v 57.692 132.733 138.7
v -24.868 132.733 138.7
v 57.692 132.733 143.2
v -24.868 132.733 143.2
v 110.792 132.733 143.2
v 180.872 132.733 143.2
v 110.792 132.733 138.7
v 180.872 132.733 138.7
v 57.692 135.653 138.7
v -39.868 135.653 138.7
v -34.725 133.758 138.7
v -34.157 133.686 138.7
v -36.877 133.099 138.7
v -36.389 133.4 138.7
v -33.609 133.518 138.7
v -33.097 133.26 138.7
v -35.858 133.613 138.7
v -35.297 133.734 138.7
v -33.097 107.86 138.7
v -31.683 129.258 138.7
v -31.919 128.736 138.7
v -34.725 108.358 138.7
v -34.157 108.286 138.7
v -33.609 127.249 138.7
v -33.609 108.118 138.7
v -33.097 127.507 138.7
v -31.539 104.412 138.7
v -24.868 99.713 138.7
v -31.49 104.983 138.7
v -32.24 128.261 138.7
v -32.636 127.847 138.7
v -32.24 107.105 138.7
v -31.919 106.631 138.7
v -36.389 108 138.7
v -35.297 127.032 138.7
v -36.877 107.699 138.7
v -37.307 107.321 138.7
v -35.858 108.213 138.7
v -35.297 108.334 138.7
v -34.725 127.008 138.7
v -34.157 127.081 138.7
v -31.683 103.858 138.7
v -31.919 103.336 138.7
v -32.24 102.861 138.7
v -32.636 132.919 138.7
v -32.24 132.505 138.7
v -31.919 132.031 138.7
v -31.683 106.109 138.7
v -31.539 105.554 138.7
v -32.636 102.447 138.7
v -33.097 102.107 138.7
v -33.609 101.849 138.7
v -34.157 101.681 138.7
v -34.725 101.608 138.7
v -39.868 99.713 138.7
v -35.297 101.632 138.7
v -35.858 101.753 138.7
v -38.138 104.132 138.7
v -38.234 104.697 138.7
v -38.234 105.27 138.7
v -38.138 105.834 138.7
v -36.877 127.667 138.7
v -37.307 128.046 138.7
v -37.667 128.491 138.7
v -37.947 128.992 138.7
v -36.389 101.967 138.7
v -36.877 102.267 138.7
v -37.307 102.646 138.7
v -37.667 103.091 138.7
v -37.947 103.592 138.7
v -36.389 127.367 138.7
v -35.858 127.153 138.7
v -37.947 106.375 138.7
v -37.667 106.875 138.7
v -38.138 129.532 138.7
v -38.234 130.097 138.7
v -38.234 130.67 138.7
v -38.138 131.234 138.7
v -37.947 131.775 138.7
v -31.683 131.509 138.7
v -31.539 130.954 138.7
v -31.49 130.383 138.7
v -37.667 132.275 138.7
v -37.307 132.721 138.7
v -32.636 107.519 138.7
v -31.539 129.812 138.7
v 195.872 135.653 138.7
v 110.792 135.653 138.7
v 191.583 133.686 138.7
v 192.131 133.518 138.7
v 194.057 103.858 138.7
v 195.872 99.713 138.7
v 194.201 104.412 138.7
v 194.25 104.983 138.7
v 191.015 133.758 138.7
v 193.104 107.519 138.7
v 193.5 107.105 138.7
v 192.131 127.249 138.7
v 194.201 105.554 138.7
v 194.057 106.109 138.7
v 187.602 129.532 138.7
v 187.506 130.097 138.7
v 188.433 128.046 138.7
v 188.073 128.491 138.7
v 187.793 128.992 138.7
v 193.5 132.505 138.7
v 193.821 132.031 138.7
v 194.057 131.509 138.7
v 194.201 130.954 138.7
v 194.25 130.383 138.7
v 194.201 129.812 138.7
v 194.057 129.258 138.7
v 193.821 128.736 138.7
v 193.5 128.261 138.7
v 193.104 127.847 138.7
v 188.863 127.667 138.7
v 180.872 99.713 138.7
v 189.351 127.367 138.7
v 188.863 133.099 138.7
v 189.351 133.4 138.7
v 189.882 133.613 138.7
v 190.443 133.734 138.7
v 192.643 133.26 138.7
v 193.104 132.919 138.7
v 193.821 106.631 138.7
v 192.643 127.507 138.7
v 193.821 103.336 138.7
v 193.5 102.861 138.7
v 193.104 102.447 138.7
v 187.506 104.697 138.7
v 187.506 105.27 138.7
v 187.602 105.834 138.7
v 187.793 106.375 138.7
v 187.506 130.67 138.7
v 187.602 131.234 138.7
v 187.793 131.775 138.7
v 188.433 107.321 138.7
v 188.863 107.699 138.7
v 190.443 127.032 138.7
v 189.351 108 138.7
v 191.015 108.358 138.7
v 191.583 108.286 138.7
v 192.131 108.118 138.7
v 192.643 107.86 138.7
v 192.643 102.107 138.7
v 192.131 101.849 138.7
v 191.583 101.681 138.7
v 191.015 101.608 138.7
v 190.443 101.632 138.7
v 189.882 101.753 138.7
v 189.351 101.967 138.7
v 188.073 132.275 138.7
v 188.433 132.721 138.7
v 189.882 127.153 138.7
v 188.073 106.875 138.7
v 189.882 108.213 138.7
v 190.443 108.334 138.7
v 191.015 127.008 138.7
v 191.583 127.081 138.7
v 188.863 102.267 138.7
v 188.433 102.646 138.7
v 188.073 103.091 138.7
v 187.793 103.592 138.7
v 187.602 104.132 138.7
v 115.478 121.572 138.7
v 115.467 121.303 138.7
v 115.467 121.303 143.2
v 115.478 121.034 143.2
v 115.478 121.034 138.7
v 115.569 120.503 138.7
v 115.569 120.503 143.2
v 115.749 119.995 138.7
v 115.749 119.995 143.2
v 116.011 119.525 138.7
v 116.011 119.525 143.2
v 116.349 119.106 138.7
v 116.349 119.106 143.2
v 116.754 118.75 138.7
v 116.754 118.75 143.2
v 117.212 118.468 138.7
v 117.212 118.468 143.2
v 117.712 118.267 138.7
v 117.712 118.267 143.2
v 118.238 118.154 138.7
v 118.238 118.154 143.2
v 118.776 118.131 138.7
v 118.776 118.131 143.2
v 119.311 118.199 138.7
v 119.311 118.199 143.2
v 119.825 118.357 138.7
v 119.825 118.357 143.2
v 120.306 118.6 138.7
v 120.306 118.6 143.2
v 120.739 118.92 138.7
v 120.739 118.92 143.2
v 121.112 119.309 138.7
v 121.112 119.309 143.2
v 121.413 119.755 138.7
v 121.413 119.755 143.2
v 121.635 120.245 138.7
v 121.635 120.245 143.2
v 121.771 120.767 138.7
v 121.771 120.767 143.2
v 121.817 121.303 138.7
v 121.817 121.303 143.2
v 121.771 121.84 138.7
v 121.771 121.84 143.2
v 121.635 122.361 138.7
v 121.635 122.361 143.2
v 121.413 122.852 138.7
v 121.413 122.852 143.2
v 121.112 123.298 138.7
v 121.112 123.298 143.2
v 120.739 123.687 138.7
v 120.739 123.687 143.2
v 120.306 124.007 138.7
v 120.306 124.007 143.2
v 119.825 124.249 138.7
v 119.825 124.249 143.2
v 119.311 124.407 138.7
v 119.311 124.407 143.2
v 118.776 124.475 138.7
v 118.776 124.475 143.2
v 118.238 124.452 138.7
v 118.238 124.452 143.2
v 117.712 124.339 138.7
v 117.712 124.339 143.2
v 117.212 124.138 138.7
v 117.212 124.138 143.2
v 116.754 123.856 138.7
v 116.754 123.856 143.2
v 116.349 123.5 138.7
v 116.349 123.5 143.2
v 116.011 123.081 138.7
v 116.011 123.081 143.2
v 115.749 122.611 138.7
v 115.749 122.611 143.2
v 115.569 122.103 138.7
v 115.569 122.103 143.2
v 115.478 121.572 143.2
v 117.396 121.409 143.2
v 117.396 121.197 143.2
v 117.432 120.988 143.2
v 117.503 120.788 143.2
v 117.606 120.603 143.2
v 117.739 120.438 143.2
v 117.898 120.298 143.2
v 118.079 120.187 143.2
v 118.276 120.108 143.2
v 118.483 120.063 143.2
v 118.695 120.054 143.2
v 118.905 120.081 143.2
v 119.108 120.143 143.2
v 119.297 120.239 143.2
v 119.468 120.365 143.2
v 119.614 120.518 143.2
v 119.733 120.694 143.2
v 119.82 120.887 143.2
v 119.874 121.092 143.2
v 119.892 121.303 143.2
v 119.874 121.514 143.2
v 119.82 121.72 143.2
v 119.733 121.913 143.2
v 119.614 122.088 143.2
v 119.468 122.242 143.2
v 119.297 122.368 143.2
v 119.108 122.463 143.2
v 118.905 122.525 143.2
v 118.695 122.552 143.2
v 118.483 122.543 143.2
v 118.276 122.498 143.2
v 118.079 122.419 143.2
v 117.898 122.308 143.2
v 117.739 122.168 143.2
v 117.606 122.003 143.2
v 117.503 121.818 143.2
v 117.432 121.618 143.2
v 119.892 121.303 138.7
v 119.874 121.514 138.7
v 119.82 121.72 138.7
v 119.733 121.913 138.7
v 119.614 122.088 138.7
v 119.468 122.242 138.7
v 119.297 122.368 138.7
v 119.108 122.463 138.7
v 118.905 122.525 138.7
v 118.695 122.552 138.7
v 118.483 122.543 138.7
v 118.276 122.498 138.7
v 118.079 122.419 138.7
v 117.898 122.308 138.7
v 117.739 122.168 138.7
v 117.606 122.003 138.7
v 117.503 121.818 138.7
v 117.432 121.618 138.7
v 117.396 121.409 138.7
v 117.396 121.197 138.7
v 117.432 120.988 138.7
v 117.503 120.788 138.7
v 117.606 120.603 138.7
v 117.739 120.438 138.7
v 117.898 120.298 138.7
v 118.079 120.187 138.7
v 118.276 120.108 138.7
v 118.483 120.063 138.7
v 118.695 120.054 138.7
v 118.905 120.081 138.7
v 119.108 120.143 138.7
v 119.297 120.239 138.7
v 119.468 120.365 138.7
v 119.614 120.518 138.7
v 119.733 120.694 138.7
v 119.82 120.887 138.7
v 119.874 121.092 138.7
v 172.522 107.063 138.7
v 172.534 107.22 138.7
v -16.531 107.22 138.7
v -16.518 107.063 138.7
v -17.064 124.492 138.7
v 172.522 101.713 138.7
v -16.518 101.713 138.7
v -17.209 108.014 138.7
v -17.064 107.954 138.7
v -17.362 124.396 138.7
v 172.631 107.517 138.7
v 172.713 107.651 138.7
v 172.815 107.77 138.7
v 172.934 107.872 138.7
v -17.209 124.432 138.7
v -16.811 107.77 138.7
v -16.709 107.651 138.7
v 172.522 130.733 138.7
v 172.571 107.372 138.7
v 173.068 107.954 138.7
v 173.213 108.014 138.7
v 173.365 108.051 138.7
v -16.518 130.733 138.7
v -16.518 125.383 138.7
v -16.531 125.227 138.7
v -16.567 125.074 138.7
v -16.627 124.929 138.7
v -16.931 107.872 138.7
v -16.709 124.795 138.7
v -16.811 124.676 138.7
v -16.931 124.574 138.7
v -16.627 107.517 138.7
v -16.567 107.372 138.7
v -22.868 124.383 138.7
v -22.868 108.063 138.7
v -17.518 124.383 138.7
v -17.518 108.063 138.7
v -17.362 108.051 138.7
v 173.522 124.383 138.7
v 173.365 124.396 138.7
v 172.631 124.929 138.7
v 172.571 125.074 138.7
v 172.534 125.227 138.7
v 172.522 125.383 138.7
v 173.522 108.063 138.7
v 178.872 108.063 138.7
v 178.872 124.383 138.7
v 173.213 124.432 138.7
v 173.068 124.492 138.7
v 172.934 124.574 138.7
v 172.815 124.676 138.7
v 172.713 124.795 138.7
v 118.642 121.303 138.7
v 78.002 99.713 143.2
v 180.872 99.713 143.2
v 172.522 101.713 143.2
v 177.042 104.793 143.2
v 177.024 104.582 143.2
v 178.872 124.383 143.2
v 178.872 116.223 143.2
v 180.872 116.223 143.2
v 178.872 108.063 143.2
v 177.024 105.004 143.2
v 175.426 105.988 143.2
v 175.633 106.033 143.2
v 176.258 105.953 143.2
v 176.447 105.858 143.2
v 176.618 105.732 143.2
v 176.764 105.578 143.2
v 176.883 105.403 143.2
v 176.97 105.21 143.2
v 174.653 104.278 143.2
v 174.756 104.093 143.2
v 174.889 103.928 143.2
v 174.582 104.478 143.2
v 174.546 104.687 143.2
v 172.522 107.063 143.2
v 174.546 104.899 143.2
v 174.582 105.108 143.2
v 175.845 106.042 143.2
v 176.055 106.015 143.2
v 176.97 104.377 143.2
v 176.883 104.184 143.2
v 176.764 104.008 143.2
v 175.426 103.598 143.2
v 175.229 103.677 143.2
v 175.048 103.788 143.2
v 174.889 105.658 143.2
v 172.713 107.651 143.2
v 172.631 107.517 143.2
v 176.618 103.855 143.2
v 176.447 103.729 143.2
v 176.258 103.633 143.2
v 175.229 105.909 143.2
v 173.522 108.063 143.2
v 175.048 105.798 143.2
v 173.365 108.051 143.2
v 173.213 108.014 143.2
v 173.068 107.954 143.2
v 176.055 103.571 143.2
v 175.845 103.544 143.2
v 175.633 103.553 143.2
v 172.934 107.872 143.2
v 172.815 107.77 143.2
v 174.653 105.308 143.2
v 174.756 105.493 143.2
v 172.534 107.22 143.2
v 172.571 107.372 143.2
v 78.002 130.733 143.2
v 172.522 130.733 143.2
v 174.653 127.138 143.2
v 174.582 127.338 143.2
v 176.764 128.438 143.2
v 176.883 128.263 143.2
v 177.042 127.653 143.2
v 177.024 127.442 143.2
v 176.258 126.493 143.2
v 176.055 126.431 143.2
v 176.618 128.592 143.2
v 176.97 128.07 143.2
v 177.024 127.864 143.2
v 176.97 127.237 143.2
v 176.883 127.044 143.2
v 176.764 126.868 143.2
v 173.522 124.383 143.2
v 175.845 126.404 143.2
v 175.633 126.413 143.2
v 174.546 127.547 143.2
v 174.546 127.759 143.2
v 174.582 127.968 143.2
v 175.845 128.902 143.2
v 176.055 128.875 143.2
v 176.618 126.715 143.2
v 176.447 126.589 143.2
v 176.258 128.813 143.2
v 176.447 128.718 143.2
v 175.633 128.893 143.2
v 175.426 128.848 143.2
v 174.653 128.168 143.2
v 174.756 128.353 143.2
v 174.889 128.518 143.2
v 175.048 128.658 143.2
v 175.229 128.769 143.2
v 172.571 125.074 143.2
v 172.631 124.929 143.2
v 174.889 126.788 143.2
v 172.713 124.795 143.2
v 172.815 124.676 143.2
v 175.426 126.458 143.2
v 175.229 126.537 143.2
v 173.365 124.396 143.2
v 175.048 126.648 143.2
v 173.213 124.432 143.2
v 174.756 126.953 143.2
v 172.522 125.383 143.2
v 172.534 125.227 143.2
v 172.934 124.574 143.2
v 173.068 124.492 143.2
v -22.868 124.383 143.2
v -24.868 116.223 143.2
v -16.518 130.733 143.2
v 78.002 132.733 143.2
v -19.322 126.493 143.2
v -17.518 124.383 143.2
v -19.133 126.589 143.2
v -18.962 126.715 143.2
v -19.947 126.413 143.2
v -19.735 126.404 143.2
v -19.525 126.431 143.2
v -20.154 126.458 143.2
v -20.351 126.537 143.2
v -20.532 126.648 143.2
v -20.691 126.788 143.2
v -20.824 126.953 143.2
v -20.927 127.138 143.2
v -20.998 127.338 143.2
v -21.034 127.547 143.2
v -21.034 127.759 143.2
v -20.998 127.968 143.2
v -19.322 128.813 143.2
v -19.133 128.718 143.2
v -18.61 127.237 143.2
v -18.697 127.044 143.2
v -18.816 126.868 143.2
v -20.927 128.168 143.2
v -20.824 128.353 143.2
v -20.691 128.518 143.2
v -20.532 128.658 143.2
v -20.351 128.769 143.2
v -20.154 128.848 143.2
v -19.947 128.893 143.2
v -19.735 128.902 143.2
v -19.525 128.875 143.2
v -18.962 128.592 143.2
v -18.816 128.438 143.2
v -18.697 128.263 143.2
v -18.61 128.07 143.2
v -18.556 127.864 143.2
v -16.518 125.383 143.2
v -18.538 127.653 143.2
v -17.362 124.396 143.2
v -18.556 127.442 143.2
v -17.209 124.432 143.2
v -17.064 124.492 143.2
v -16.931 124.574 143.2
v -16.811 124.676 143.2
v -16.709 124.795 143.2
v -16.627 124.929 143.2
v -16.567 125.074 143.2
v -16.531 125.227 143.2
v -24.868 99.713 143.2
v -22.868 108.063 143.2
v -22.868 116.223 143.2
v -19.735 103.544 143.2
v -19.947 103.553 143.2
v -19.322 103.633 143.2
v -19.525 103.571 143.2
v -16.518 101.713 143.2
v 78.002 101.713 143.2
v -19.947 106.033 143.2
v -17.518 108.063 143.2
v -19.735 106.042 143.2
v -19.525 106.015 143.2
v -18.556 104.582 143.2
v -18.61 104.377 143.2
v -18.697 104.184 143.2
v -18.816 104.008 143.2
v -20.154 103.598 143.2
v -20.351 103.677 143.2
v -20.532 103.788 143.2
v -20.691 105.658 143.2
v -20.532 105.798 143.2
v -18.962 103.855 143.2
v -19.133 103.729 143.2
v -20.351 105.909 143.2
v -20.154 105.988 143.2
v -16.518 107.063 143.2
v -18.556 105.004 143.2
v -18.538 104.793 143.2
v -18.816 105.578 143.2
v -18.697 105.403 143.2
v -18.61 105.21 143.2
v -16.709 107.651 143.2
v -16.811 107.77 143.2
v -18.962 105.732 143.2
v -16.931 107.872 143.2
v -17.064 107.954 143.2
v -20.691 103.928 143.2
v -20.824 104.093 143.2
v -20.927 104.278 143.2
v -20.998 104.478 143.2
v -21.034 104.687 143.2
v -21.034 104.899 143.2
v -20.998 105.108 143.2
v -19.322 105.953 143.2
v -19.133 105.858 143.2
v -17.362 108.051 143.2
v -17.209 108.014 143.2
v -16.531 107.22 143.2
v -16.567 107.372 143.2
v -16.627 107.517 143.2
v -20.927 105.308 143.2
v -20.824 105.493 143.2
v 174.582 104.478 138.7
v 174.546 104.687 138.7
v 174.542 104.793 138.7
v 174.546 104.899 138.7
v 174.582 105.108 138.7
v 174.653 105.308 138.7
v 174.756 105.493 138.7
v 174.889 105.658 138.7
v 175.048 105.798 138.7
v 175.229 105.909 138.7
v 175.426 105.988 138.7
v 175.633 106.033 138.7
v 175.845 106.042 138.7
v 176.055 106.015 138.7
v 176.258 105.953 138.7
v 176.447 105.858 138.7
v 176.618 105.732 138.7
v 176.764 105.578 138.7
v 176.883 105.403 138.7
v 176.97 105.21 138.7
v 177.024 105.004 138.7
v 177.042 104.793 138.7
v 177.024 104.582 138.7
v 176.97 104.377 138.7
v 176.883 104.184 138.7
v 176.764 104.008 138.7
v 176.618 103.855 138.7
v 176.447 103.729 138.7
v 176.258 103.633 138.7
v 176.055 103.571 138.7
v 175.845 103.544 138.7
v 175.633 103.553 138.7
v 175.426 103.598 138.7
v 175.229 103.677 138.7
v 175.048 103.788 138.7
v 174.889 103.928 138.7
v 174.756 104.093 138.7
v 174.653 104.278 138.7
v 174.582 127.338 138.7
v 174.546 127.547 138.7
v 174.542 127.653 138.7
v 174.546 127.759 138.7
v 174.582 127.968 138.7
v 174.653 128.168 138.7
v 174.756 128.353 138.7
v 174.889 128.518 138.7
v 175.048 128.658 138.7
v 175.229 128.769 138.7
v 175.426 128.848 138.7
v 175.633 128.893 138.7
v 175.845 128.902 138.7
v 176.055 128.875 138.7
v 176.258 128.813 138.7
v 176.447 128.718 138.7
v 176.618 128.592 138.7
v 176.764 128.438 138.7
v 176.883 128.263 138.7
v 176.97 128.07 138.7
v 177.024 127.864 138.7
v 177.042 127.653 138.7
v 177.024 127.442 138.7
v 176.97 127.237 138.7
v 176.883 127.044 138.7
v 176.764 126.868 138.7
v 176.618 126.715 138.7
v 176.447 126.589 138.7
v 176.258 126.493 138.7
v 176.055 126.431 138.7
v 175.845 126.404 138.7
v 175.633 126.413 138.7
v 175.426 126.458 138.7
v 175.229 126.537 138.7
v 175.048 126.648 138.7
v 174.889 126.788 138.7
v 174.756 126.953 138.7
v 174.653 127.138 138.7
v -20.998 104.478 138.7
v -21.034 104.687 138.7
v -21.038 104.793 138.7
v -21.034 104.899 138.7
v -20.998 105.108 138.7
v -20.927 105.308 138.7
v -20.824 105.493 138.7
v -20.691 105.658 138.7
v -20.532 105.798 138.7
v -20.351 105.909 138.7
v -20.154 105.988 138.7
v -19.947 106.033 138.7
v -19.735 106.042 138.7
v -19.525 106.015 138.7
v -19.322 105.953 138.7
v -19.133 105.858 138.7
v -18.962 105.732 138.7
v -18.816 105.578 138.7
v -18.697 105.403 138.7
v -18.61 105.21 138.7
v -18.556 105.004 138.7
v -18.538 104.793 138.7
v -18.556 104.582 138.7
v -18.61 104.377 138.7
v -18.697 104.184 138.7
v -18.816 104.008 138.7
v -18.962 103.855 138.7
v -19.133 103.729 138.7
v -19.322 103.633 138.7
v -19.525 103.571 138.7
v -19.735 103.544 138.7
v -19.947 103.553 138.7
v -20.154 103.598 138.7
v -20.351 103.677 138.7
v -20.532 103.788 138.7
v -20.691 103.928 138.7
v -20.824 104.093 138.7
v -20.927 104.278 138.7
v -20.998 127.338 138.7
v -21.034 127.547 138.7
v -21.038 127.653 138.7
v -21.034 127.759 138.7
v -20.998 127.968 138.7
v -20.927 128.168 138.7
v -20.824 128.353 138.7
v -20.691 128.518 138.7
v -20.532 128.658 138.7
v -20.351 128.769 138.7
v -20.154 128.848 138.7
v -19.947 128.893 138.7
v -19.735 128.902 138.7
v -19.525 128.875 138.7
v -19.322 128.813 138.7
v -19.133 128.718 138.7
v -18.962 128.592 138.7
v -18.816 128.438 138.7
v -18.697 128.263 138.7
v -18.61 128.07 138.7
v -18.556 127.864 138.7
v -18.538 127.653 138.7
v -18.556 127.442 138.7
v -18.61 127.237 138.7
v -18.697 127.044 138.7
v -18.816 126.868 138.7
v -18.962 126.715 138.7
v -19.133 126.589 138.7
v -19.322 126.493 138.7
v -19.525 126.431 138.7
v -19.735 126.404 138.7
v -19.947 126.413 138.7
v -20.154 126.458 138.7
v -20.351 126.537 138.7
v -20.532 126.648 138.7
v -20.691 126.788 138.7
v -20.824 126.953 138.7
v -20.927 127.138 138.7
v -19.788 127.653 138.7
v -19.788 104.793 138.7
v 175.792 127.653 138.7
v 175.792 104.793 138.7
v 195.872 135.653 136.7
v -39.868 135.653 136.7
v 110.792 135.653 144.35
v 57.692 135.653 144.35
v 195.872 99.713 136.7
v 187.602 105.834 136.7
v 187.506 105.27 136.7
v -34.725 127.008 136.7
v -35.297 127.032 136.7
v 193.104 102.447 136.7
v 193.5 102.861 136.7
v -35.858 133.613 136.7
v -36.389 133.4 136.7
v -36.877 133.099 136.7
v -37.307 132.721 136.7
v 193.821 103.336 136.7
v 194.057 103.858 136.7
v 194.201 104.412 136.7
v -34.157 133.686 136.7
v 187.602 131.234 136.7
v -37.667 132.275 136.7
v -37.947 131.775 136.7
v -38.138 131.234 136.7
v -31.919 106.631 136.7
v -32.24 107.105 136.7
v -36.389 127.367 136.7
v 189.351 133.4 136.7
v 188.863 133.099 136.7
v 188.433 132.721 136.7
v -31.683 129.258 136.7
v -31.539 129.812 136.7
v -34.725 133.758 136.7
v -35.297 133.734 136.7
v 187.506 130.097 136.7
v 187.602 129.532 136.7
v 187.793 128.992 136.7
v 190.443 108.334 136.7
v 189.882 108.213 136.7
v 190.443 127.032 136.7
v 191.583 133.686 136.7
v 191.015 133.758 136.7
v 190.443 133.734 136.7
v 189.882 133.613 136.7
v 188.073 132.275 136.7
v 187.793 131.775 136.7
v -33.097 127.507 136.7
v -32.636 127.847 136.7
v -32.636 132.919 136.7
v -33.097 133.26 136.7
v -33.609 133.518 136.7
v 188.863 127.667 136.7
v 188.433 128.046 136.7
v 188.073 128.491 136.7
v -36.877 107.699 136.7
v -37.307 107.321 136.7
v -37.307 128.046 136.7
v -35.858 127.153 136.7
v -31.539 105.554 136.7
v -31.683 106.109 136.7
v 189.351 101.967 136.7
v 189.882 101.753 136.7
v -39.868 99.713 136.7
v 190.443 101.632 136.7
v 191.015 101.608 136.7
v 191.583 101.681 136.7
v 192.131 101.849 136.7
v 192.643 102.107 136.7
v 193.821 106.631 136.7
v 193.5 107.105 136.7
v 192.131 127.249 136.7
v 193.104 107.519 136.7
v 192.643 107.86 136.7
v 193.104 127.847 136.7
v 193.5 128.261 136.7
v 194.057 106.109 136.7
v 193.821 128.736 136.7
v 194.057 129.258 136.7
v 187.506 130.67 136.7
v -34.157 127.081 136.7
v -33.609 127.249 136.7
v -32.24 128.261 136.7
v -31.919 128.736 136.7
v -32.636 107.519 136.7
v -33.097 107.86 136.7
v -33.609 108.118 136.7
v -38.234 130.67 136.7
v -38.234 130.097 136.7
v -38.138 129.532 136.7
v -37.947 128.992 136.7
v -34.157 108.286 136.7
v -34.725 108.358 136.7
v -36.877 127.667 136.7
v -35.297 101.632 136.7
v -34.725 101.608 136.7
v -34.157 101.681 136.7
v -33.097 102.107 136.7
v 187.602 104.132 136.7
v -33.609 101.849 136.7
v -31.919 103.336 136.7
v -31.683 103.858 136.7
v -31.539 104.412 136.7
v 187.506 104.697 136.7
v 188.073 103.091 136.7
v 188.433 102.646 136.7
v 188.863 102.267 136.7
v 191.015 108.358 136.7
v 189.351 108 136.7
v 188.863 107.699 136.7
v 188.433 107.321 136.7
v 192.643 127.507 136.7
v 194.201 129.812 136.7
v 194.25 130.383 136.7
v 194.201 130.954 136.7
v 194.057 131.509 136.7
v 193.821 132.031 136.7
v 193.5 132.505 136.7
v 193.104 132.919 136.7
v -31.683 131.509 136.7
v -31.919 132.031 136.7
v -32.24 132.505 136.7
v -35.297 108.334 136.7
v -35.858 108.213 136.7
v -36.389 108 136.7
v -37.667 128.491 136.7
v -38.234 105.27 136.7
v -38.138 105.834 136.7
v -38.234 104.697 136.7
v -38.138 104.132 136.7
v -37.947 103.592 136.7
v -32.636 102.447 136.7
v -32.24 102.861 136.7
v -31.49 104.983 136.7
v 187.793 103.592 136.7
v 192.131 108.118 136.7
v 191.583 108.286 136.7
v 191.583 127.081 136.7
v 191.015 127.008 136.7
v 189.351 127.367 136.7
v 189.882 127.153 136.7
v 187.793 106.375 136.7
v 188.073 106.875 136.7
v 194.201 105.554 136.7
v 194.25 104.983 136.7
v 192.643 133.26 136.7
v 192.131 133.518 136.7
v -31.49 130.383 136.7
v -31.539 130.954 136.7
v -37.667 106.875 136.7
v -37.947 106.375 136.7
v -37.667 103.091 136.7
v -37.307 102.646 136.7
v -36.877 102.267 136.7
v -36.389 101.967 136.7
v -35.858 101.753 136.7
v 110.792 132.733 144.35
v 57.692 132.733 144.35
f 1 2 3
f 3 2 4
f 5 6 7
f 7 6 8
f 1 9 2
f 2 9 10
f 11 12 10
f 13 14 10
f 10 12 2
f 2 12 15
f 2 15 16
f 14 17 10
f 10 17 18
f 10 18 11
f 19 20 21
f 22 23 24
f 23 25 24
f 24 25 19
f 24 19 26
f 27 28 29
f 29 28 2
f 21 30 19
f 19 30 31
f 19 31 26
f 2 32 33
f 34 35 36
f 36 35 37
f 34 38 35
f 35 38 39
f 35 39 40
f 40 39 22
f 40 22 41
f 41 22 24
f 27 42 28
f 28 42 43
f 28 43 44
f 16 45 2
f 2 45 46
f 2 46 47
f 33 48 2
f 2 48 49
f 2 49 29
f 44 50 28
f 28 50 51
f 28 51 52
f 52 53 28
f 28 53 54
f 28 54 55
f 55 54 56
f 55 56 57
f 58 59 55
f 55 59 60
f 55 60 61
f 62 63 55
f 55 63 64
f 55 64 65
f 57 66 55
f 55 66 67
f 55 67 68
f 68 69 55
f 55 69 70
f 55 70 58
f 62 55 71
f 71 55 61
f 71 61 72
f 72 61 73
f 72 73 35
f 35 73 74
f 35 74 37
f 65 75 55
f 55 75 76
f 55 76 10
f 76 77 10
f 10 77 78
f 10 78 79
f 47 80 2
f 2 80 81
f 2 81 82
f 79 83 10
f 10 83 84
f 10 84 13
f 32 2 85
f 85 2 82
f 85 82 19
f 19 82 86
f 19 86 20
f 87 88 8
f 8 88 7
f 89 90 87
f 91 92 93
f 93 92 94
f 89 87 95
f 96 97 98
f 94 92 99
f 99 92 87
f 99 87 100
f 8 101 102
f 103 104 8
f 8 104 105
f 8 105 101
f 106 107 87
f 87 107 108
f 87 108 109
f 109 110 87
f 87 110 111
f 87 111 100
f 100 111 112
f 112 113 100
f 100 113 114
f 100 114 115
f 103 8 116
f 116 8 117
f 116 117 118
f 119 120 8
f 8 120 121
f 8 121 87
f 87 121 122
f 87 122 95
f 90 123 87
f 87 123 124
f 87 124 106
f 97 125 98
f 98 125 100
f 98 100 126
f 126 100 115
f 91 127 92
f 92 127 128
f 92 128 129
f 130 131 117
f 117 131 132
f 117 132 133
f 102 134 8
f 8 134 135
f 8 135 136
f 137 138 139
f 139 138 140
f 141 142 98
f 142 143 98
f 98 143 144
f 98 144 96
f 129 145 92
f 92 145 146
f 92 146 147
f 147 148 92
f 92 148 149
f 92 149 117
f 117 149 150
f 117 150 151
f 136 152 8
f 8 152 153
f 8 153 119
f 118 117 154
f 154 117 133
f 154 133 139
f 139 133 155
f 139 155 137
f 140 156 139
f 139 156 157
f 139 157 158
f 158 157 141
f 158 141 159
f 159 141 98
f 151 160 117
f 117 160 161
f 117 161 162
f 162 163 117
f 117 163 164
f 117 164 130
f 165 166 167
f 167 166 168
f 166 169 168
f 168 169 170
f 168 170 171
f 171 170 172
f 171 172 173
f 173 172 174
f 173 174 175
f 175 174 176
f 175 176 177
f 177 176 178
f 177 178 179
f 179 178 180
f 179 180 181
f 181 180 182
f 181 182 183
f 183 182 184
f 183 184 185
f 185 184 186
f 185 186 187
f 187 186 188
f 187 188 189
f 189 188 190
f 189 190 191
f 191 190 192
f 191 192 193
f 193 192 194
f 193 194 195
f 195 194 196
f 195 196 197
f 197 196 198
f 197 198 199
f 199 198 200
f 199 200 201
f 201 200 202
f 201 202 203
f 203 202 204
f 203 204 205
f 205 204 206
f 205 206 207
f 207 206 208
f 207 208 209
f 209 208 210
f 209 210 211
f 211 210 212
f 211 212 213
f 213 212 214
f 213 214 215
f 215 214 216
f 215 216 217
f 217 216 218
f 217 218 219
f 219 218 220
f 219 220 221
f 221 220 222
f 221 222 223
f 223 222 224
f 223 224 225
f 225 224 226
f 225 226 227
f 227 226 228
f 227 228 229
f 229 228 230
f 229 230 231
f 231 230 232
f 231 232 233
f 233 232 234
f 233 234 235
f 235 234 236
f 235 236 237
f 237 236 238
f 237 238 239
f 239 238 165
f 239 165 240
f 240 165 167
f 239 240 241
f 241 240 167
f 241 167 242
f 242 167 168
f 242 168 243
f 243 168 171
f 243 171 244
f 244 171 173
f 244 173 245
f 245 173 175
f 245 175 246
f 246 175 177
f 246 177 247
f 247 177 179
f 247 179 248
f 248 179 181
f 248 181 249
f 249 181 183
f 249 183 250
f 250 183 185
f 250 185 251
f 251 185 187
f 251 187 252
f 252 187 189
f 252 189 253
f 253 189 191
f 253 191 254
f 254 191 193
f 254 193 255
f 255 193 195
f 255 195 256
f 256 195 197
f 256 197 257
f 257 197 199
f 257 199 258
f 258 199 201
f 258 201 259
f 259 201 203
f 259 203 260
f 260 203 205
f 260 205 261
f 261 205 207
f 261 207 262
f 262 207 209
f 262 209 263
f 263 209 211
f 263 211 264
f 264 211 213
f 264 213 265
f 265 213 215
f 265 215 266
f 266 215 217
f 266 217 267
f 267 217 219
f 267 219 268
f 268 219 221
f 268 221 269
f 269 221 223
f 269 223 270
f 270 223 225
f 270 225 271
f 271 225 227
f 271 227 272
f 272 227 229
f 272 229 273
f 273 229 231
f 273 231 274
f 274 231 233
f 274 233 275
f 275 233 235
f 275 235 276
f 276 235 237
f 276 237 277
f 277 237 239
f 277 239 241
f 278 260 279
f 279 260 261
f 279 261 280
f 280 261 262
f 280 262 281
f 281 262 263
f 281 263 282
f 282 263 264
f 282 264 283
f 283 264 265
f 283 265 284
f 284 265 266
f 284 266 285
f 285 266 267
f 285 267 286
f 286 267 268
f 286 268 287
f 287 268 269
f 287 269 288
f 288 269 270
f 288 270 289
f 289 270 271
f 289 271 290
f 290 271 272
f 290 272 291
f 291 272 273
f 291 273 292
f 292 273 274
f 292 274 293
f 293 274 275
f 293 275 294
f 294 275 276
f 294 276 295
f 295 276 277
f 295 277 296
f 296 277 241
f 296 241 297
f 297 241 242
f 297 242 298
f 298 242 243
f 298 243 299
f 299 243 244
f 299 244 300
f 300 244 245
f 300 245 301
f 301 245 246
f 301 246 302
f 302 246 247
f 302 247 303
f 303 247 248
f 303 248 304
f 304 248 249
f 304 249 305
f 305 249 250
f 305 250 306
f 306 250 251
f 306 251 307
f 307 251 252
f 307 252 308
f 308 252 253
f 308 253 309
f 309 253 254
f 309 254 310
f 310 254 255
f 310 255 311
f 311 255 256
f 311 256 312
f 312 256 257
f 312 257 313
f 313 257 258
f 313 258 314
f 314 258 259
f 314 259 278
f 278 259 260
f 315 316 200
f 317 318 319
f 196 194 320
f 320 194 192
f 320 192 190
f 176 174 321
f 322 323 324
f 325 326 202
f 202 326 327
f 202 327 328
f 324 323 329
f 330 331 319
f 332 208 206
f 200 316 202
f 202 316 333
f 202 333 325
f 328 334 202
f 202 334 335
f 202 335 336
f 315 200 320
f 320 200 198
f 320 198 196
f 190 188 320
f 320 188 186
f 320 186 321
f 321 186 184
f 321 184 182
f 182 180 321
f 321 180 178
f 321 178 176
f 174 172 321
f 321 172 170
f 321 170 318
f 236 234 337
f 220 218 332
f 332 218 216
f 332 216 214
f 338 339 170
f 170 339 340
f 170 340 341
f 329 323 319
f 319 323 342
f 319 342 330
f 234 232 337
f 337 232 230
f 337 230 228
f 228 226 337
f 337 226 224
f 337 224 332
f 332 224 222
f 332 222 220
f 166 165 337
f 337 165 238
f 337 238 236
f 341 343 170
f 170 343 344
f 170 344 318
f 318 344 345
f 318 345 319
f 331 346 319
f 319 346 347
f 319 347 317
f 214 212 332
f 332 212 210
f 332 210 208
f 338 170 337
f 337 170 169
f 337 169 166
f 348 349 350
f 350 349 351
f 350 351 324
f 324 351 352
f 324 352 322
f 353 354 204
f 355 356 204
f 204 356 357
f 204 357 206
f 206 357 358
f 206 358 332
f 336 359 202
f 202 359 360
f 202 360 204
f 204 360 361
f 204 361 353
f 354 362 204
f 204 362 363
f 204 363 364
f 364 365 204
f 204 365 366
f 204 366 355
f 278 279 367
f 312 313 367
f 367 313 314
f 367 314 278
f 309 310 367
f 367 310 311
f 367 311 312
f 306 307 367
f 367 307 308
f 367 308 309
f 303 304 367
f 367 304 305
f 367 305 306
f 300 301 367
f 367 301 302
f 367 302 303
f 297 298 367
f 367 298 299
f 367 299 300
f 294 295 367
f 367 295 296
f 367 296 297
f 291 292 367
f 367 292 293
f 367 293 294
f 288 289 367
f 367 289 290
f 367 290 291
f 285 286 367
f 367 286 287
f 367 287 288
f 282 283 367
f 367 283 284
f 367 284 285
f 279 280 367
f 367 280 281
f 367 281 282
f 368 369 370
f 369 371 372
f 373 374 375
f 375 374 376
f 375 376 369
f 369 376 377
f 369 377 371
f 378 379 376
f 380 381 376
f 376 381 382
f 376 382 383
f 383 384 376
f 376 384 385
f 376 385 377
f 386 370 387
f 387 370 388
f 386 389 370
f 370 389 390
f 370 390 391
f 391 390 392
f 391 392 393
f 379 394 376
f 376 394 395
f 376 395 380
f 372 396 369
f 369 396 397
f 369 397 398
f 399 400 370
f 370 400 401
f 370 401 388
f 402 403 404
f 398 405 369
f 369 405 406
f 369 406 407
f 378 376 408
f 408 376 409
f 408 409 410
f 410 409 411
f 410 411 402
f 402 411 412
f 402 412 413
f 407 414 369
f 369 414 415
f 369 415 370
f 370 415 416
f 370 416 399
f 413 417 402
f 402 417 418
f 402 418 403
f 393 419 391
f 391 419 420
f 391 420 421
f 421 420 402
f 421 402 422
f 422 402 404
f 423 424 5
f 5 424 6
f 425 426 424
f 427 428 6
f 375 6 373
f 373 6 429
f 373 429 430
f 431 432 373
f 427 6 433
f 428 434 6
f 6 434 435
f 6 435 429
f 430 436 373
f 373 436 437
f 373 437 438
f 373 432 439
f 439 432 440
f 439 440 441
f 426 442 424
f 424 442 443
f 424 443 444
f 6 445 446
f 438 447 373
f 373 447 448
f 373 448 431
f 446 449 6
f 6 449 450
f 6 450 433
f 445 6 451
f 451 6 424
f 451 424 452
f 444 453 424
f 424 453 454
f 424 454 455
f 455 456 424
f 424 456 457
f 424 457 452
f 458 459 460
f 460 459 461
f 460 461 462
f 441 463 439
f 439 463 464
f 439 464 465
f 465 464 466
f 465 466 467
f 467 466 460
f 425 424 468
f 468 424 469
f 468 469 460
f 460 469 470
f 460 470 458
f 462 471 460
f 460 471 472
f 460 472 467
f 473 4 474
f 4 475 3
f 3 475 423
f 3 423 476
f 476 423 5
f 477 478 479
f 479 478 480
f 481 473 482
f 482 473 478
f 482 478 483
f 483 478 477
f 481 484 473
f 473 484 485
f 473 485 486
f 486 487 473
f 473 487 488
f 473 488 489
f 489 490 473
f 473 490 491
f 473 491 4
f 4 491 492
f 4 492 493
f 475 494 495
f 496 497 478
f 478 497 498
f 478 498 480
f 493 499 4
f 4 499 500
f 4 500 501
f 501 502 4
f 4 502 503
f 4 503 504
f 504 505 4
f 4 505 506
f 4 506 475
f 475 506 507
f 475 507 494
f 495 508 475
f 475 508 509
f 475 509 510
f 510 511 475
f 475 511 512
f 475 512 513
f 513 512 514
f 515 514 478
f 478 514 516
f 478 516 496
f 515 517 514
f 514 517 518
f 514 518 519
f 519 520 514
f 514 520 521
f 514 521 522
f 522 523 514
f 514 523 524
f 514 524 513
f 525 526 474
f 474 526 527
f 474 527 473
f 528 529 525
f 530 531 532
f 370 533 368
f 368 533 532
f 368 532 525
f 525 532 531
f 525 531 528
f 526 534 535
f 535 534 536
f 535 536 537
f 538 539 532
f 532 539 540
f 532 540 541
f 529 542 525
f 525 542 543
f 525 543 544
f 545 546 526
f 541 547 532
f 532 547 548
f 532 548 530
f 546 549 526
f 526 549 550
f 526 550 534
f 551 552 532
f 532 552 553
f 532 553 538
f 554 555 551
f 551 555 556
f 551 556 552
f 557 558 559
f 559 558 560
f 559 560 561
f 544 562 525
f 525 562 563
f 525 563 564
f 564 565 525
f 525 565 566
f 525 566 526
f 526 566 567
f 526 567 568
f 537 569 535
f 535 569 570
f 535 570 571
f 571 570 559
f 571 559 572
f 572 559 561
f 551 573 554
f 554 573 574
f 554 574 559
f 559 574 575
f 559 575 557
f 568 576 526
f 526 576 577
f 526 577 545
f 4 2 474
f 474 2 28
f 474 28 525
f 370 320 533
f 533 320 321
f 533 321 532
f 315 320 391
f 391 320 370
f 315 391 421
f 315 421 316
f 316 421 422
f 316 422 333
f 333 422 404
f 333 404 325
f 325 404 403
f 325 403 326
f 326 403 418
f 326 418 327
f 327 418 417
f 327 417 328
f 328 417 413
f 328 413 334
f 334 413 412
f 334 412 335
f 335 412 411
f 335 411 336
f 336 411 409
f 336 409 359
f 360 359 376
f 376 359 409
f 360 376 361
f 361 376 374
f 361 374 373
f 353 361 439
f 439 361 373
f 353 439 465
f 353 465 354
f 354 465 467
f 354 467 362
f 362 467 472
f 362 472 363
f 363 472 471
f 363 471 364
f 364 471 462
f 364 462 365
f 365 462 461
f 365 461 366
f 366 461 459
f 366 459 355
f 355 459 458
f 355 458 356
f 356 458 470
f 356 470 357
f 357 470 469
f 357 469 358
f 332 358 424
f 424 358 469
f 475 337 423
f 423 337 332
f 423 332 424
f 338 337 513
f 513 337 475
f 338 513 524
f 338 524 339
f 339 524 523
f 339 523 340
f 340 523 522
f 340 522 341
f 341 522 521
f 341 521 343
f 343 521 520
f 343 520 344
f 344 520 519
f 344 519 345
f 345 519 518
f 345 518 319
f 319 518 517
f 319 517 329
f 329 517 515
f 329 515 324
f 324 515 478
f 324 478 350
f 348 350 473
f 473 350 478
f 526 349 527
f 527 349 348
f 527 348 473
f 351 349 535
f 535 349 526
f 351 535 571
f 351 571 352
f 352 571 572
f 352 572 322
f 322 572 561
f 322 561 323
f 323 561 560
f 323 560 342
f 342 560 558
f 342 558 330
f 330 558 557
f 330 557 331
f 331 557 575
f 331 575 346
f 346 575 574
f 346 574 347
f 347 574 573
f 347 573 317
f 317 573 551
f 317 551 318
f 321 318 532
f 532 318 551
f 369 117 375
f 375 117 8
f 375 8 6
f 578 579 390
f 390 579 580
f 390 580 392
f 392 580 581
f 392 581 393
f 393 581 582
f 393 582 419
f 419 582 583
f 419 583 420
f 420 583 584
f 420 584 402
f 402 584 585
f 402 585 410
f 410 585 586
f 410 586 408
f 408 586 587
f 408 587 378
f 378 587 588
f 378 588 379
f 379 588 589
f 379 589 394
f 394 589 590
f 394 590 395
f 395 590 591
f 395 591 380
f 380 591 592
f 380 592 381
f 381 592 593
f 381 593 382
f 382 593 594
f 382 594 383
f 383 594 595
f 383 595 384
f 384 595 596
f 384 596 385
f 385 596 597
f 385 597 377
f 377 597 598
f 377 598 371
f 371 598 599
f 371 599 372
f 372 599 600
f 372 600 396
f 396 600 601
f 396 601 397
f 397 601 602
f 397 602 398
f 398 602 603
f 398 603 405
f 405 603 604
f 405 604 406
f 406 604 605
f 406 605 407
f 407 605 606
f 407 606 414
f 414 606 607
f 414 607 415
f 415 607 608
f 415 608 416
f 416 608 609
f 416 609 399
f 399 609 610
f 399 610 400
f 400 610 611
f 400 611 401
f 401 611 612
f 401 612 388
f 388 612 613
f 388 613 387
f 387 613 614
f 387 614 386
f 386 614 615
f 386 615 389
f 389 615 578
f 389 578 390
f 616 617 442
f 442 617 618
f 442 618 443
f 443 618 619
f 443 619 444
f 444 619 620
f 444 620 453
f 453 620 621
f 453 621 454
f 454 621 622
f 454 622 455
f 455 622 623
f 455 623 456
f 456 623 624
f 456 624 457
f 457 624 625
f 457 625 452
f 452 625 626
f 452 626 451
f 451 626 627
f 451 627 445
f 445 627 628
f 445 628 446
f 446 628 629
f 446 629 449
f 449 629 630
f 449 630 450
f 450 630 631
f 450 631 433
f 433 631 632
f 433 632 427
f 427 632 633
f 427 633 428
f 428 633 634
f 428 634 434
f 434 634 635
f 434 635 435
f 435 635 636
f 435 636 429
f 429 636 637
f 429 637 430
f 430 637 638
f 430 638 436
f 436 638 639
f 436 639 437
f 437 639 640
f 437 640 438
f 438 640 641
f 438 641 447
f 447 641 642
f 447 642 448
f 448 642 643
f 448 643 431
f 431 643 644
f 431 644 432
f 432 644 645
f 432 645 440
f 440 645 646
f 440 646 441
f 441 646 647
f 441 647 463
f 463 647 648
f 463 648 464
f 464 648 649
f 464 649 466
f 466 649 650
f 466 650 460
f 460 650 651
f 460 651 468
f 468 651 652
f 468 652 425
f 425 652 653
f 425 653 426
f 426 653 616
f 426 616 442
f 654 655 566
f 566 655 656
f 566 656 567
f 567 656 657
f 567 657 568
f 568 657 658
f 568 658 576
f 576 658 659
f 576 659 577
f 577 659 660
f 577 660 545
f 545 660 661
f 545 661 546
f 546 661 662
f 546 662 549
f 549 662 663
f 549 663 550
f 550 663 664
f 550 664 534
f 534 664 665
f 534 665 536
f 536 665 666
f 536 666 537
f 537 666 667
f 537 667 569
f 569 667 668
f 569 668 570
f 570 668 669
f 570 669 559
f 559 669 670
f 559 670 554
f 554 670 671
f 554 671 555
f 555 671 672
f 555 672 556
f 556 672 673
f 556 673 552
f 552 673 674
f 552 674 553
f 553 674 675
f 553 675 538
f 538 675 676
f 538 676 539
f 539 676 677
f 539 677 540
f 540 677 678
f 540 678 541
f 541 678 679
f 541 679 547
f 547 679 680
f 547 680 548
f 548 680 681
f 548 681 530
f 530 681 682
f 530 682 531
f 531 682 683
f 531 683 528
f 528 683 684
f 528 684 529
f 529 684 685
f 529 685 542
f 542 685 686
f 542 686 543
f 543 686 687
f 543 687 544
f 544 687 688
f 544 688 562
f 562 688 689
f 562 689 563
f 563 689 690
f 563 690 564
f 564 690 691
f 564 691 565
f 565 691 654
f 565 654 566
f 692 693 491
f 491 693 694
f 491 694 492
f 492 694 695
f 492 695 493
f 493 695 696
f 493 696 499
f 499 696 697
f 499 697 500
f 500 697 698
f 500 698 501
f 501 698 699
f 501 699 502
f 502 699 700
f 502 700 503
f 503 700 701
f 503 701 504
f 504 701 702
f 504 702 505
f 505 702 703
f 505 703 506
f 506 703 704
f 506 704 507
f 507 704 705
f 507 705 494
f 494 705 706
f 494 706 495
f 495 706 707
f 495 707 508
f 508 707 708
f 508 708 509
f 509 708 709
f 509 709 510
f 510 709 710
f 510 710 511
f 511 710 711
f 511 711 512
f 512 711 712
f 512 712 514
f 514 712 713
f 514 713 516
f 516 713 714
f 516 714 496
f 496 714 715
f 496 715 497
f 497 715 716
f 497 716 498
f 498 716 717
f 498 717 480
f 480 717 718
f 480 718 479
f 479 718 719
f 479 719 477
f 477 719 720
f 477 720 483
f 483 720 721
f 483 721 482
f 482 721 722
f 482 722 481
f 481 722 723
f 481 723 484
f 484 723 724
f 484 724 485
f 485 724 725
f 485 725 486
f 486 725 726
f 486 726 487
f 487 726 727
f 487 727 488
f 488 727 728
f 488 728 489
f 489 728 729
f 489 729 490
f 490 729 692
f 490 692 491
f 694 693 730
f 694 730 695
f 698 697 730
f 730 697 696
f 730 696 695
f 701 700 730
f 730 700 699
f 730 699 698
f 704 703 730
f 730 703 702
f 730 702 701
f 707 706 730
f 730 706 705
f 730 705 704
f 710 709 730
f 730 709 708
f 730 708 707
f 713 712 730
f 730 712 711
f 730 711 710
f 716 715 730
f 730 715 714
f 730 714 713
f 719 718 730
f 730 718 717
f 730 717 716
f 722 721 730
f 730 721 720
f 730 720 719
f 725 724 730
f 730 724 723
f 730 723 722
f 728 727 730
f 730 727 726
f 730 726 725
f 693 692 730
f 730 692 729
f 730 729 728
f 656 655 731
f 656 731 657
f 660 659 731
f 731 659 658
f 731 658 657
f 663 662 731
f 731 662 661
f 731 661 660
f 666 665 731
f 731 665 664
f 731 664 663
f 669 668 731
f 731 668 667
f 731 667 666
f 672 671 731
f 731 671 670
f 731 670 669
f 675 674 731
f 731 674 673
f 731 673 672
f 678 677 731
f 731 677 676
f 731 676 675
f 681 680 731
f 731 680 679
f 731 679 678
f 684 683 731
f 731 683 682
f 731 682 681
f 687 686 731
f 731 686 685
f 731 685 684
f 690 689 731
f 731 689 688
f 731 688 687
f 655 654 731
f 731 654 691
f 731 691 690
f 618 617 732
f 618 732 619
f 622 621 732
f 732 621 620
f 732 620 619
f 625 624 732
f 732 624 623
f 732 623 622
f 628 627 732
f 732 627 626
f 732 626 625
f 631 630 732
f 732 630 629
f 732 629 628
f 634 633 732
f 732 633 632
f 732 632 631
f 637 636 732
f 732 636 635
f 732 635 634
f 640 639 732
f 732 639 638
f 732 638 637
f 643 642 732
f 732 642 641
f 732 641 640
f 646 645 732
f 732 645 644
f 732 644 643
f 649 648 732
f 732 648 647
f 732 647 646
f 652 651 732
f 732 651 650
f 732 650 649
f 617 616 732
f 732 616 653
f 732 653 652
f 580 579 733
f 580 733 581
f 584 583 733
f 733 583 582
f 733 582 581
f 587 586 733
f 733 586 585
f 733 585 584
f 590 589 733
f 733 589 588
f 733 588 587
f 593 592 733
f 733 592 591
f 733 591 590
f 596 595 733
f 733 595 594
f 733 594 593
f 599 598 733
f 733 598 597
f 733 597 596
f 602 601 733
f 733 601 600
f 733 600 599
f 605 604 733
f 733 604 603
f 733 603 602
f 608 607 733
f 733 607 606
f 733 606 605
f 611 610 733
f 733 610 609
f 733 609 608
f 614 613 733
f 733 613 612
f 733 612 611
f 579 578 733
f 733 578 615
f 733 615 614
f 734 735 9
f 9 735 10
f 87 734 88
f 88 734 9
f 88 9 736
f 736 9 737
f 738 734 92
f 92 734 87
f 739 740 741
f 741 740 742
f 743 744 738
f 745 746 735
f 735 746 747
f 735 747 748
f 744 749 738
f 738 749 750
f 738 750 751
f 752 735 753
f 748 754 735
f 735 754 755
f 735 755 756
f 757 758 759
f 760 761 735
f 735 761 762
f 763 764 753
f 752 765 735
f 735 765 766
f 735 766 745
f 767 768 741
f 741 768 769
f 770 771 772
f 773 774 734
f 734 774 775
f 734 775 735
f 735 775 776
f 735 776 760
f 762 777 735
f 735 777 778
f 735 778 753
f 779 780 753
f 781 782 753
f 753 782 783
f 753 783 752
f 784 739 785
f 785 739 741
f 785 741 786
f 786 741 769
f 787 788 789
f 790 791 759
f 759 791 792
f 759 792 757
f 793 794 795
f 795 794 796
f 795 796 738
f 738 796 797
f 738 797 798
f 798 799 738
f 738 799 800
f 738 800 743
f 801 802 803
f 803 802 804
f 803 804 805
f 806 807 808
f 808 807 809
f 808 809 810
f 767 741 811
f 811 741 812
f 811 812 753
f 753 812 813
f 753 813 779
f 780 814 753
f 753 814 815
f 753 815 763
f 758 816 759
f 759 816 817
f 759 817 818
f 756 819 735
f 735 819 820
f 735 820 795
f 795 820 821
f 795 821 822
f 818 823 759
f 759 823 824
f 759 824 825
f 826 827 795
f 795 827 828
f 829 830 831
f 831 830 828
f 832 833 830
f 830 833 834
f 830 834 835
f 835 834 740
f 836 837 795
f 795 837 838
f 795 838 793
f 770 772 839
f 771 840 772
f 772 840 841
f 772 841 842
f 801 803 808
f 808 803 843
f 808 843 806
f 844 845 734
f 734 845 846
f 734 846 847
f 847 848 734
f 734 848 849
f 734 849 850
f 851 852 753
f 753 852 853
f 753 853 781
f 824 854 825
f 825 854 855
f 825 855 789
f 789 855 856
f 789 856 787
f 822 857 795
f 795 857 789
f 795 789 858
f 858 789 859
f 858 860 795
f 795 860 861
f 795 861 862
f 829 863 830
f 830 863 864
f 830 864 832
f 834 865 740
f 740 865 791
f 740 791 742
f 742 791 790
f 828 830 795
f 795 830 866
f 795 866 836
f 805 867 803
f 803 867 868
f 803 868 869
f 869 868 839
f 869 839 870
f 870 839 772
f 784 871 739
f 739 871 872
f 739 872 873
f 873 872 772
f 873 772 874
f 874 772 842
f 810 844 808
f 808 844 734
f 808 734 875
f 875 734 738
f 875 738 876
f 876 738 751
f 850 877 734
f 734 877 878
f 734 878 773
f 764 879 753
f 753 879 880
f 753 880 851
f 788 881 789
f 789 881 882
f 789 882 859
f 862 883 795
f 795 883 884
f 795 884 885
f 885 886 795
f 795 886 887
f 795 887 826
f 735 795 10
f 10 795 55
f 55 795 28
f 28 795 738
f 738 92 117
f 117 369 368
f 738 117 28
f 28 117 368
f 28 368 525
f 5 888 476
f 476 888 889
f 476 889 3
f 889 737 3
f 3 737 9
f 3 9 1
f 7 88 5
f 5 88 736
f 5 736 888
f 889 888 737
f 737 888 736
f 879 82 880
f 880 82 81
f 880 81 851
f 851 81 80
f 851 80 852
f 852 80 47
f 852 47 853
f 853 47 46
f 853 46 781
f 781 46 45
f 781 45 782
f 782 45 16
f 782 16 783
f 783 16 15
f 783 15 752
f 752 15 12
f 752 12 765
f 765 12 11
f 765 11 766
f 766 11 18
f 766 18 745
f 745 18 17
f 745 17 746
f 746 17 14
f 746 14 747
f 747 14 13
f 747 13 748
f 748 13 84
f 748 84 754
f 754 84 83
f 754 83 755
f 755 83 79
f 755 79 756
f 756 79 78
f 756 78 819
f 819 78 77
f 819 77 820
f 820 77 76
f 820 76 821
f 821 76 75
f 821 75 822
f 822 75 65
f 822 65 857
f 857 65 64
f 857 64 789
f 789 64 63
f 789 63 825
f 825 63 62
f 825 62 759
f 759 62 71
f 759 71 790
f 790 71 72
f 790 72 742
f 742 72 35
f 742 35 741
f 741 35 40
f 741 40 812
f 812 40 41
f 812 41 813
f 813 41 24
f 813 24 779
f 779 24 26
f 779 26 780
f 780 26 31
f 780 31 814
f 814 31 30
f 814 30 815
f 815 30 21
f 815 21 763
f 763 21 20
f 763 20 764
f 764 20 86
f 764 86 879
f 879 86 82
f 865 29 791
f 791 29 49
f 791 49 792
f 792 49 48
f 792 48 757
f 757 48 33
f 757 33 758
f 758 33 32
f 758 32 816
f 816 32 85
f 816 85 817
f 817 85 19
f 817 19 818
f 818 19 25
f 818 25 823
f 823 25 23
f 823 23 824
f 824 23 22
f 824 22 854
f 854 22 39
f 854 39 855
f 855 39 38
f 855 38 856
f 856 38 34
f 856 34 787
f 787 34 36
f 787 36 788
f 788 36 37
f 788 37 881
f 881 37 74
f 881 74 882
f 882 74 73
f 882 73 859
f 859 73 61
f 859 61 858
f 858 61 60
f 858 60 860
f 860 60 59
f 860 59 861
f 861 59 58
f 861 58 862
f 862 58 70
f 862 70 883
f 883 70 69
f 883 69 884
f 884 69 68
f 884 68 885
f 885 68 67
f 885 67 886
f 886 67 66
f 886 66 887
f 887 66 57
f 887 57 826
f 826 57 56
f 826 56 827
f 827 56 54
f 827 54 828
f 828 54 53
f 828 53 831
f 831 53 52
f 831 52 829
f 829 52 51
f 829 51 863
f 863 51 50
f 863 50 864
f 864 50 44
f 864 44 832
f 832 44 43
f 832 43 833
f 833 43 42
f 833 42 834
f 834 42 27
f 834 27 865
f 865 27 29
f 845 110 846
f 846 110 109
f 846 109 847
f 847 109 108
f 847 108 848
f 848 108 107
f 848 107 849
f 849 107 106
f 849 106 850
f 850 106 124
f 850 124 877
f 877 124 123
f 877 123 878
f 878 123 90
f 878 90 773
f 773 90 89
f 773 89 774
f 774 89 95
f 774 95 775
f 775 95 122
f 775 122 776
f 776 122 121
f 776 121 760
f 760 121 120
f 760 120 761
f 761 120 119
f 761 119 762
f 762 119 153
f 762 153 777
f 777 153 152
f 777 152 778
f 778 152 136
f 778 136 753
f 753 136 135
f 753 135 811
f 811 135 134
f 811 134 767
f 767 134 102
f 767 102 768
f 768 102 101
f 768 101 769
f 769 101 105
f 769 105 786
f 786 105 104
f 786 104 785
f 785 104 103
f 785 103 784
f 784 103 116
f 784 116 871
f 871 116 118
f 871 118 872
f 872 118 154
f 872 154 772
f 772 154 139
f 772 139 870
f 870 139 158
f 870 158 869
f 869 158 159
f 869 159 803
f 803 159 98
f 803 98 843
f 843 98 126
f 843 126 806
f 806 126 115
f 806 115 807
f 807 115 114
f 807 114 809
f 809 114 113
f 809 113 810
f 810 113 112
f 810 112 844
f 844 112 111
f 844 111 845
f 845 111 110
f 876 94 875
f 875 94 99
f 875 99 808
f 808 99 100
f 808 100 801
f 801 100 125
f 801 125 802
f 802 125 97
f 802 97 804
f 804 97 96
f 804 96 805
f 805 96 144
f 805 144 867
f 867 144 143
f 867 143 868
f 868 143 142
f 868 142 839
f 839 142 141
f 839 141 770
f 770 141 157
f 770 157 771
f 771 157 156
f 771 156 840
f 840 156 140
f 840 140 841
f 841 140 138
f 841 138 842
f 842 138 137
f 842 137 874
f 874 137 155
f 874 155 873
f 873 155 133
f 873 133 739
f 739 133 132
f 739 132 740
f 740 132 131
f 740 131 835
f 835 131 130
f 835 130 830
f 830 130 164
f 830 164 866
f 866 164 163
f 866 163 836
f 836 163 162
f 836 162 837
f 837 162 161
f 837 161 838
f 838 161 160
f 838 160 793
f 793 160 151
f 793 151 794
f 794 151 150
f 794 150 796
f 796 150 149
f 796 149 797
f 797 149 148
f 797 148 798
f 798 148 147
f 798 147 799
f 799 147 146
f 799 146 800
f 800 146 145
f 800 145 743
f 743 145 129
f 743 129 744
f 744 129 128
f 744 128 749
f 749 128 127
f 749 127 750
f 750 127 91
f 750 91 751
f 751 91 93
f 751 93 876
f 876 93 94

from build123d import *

# Parameters (mm, degrees)
SKETCH1_W                   = 205.74
SKETCH1_H                   = 33.02
SKETCH1_W_2                 = 201.74
SKETCH1_H_2                 = 29.02
SKETCH1_R                   = 3.175
BOSS_EXTRUDE1_DEPTH         = 4.5
TAP_DRILL_FOR_M3X0_5_TAP1_D = 2.5
SKETCH5_W                   = 235.74
SKETCH5_H                   = 35.94
BOSS_EXTRUDE2_DEPTH         = 2
SKETCH6_W                   = 53.1
SKETCH6_H                   = 2.92
BOSS_EXTRUDE3_DEPTH         = 5.65
F_1_4_CLEARANCE_HOLE1_D     = 6.7564


with BuildPart() as part:
    # Sketch1 → Boss-Extrude1 (new body)
    # profile 1 of 6: a face of its own
    with BuildSketch(Plane(origin=(0, 0, 143.199899198), x_dir=(-1, 0, 0), z_dir=(0, 0, -1))):
        with Locations((-78.001678372, 116.22318568)):
            Rectangle(SKETCH1_W, SKETCH1_H)
        with Locations((-78.001678372, 116.22318568)):
            Rectangle(SKETCH1_W_2, SKETCH1_H_2, mode=Mode.SUBTRACT)
    # profile 2 of 6: a face of its own
    with BuildSketch(Plane(origin=(0, 0, 143.199899198), x_dir=(-1, 0, 0), z_dir=(0, 0, -1))):
        with BuildLine():
            Line((16.518321628, 107.06318568), (16.518321628, 101.71318568))
            Line((16.518321628, 101.71318568), (22.868321628, 101.71318568))
            Line((22.868321628, 101.71318568), (22.868321628, 108.06318568))
            Line((22.868321628, 108.06318568), (17.518321628, 108.06318568))
            ThreePointArc((17.518321628, 108.06318568), (16.811214846, 107.770292461), (16.518321628, 107.06318568))
        make_face()
    # profile 3 of 6: a face of its own
    with BuildSketch(Plane(origin=(0, 0, 143.199899198), x_dir=(-1, 0, 0), z_dir=(0, 0, -1))):
        with BuildLine():
            Line((22.868321628, 130.73318568), (16.518321628, 130.73318568))
            Line((16.518321628, 130.73318568), (16.518321628, 125.38318568))
            ThreePointArc((16.518321628, 125.38318568), (16.811214846, 124.676078899), (17.518321628, 124.38318568))
            Line((17.518321628, 124.38318568), (22.868321628, 124.38318568))
            Line((22.868321628, 124.38318568), (22.868321628, 130.73318568))
        make_face()
    # profile 4 of 6: a face of its own
    with BuildSketch(Plane(origin=(0, 0, 143.199899198), x_dir=(-1, 0, 0), z_dir=(0, 0, -1))):
        with Locations((-118.641678372, 121.30318568)):
            Circle(SKETCH1_R)
    # profile 5 of 6: a face of its own
    with BuildSketch(Plane(origin=(0, 0, 143.199899198), x_dir=(-1, 0, 0), z_dir=(0, 0, -1))):
        with BuildLine():
            Line((-178.871678372, 130.73318568), (-178.871678372, 124.38318568))
            Line((-178.871678372, 124.38318568), (-173.521678372, 124.38318568))
            ThreePointArc((-173.521678372, 124.38318568), (-172.814571591, 124.676078899), (-172.521678372, 125.38318568))
            Line((-172.521678372, 125.38318568), (-172.521678372, 130.73318568))
            Line((-172.521678372, 130.73318568), (-178.871678372, 130.73318568))
        make_face()
    # profile 6 of 6: a face of its own
    with BuildSketch(Plane(origin=(0, 0, 143.199899198), x_dir=(-1, 0, 0), z_dir=(0, 0, -1))):
        with BuildLine():
            Line((-178.871678372, 108.06318568), (-178.871678372, 101.71318568))
            Line((-178.871678372, 101.71318568), (-172.521678372, 101.71318568))
            Line((-172.521678372, 101.71318568), (-172.521678372, 107.06318568))
            ThreePointArc((-172.521678372, 107.06318568), (-172.814571591, 107.770292461), (-173.521678372, 108.06318568))
            Line((-173.521678372, 108.06318568), (-178.871678372, 108.06318568))
        make_face()
    extrude(amount=BOSS_EXTRUDE1_DEPTH)

    # Tap Drill for M3x0.5 Tap1 (through all)
    with Locations(Plane.XY.offset(143.199899198)):
        with Locations((-19.788321628, 127.65318568), (-19.788321628, 104.79318568), (118.641678372, 121.30318568), (175.791678372, 127.65318568), (175.791678372, 104.79318568)):
            Hole(TAP_DRILL_FOR_M3X0_5_TAP1_D / 2)

    # Sketch5 → Boss-Extrude2 (add)
    with BuildSketch(Plane(origin=(0, 0, 138.699899198), x_dir=(-1, 0, 0), z_dir=(0, 0, -1))):
        with Locations((-78.001678372, 117.68318568)):
            Rectangle(SKETCH5_W, SKETCH5_H)
    extrude(amount=BOSS_EXTRUDE2_DEPTH)

    # Sketch6 → Boss-Extrude3 (add)
    with BuildSketch(Plane.XY.offset(138.699899198)):
        with Locations((84.241678372, 134.19318568)):
            Rectangle(SKETCH6_W, SKETCH6_H)
    extrude(amount=BOSS_EXTRUDE3_DEPTH)

    # 1/4 Clearance Hole1 (through all)
    with Locations(Plane.XY.offset(138.699899198)):
        with Locations((190.871678372, 104.98318568), (190.871678372, 130.38318568), (-34.868321628, 104.98318568), (-34.868321628, 130.38318568)):
            Hole(F_1_4_CLEARANCE_HOLE1_D / 2)


solid = part.part
